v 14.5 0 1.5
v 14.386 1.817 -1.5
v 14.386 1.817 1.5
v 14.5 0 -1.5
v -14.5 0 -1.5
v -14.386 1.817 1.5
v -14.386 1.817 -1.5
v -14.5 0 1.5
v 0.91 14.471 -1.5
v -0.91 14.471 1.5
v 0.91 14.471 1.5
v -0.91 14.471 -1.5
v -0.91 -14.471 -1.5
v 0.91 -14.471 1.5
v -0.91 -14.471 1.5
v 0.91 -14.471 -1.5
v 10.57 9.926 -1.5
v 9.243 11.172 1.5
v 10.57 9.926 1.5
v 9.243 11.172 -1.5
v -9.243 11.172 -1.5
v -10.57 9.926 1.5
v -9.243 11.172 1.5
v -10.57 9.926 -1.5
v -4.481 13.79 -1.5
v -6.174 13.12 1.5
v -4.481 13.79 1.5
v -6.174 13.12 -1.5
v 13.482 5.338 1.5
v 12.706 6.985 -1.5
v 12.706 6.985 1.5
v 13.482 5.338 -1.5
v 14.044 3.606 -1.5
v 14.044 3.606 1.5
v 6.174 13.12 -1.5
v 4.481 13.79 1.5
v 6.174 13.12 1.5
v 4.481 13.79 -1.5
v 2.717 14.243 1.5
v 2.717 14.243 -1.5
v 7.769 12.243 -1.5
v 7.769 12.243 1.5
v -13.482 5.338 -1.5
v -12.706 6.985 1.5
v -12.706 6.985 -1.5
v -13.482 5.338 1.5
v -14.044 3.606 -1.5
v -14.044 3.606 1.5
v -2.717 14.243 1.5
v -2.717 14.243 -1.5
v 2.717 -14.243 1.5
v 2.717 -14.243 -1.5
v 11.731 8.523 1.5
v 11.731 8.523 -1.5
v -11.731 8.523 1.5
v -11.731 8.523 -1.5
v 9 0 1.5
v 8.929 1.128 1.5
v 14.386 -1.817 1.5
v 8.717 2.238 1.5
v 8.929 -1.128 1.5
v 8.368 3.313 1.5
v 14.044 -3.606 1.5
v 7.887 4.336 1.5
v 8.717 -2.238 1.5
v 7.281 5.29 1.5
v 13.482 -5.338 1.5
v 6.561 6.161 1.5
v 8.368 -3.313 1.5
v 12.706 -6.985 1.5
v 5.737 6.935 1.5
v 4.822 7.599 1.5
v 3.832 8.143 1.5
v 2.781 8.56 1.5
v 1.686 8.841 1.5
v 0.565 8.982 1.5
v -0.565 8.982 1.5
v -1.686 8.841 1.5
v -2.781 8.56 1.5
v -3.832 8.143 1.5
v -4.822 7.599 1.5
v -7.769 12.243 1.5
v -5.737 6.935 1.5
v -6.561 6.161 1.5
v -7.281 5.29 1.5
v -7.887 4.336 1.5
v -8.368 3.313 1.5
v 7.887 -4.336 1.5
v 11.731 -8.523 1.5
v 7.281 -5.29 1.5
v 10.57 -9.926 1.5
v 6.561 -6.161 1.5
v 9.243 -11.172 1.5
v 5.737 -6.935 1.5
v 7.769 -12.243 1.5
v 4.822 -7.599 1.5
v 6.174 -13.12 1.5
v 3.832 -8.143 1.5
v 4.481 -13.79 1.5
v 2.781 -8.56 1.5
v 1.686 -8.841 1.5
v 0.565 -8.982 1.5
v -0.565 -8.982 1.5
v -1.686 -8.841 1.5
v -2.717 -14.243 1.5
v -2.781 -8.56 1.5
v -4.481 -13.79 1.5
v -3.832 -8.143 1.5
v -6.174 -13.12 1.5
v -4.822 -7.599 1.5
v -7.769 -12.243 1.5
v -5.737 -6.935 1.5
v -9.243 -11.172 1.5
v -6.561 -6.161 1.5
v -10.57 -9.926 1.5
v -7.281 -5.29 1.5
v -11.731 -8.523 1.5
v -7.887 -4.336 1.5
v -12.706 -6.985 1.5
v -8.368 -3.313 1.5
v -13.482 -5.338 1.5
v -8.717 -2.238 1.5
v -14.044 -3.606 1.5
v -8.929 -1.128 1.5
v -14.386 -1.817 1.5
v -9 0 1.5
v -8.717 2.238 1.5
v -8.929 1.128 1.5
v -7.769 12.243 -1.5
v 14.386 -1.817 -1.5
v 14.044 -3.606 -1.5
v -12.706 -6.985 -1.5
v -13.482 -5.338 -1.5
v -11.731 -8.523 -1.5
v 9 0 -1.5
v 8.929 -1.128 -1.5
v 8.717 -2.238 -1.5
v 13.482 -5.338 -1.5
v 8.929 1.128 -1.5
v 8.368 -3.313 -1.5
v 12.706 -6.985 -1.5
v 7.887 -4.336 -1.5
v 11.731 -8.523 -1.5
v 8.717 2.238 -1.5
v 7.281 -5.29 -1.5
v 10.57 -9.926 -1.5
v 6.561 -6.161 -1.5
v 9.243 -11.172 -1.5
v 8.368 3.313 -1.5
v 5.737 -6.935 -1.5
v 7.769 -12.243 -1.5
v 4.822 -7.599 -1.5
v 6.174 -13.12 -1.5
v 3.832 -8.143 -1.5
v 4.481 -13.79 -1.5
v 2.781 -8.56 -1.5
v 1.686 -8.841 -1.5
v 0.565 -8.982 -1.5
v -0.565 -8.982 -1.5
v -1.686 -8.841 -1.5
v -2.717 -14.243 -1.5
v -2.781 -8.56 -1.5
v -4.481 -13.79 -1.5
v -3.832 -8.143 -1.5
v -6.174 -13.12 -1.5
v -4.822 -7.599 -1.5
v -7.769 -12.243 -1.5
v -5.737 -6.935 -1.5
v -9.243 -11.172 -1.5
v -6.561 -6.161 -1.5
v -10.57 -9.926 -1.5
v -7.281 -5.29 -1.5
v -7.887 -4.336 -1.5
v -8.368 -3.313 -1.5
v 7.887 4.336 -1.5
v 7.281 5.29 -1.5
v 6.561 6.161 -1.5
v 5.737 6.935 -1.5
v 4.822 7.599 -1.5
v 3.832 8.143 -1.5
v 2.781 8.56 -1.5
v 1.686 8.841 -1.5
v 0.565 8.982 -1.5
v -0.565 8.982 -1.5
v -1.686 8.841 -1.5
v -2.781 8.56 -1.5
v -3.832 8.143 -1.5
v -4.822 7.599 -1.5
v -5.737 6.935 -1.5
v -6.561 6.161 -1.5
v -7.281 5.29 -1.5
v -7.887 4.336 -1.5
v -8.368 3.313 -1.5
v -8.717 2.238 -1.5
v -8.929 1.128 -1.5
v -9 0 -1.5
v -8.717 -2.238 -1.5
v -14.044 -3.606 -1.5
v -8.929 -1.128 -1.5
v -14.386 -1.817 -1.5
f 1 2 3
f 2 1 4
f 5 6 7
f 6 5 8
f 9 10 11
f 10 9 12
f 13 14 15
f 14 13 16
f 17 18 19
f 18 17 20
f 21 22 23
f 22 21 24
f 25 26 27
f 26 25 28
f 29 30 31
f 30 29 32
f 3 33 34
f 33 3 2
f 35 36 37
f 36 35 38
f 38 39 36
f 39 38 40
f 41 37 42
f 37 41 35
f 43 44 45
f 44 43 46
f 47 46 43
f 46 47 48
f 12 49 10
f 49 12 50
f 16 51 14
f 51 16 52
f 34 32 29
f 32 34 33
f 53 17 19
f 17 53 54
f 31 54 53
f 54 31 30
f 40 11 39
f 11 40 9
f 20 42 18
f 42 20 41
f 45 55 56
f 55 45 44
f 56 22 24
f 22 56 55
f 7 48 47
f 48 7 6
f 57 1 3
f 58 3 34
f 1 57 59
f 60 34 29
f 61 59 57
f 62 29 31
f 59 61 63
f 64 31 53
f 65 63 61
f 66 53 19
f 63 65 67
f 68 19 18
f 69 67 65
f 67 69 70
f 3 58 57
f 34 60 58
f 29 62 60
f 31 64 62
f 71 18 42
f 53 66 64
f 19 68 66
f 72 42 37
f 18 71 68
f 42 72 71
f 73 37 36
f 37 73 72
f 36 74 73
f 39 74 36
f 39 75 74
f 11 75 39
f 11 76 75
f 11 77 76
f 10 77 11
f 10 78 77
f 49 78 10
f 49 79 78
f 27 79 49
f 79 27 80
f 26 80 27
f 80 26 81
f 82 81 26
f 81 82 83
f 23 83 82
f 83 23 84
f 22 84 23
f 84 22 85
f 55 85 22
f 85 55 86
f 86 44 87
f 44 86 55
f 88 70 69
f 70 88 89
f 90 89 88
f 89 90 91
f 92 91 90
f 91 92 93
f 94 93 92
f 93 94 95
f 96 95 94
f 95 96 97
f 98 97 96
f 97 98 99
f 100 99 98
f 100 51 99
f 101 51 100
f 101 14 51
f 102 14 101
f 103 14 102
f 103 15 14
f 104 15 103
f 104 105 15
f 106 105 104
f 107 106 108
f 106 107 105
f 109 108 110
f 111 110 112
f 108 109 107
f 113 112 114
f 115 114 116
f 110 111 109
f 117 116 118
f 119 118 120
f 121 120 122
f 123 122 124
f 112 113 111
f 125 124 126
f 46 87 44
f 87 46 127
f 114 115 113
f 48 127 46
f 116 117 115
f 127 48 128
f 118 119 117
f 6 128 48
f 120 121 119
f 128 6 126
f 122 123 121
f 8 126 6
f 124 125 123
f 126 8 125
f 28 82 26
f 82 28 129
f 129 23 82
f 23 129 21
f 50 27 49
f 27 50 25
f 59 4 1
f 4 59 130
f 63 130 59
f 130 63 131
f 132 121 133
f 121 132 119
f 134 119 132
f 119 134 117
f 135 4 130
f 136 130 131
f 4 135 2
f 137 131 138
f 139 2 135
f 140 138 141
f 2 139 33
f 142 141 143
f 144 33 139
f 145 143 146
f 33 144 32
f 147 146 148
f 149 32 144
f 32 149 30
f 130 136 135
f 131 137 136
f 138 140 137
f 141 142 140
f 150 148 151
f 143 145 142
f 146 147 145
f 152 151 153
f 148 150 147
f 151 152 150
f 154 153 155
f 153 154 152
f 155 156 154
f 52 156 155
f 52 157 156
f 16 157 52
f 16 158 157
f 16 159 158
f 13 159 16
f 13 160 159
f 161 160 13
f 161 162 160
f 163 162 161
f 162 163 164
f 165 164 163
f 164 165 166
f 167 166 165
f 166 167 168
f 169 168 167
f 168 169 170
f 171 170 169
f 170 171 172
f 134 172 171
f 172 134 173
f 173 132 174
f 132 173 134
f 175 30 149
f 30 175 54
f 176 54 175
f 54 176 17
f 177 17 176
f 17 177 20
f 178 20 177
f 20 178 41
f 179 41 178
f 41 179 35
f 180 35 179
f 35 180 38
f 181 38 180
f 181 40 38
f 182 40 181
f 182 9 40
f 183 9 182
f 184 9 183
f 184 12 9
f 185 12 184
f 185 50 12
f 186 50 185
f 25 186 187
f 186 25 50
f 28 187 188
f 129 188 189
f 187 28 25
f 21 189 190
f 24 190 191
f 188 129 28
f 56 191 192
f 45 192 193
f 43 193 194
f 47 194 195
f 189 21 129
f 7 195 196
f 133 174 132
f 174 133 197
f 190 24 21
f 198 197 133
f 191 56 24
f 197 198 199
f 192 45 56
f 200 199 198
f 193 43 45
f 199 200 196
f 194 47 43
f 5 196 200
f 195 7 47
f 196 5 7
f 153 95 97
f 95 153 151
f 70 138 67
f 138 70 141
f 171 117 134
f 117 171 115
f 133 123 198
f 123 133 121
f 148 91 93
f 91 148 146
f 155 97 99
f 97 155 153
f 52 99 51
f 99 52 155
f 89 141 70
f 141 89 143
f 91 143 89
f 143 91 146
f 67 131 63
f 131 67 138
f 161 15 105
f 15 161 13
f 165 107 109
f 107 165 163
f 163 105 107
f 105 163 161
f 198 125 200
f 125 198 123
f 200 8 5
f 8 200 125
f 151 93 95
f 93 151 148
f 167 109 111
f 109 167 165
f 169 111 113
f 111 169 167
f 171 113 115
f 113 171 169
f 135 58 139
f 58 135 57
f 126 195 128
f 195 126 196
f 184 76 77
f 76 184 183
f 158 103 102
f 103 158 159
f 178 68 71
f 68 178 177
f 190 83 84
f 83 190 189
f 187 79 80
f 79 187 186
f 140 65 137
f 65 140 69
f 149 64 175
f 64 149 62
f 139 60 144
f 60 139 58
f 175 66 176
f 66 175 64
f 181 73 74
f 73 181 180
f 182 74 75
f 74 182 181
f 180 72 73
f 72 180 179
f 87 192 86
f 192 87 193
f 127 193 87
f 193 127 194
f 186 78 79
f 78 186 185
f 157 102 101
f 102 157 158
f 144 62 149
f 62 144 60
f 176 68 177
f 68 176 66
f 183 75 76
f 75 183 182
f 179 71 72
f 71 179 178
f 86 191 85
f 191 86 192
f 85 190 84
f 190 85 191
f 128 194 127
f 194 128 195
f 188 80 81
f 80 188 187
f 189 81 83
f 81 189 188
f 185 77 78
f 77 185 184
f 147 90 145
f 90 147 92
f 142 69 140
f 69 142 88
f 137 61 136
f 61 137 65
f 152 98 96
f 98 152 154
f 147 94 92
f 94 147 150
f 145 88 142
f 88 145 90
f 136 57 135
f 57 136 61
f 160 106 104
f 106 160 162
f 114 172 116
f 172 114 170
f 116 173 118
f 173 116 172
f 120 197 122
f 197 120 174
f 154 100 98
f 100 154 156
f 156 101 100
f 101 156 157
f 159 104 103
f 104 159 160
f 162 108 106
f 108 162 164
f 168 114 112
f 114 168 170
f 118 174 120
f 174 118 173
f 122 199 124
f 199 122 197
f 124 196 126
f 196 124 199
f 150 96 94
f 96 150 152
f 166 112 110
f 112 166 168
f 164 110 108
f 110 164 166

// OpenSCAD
$fn = 50;


difference() {
	union() {
		translate(v = [0, 0, -1.5000000000]) {
			cylinder(h = 3, r = 14.5000000000);
		}
	}
	union() {
		translate(v = [0, 0, -100.0000000000]) {
			cylinder(h = 200, r = 9);
		}
	}
}
